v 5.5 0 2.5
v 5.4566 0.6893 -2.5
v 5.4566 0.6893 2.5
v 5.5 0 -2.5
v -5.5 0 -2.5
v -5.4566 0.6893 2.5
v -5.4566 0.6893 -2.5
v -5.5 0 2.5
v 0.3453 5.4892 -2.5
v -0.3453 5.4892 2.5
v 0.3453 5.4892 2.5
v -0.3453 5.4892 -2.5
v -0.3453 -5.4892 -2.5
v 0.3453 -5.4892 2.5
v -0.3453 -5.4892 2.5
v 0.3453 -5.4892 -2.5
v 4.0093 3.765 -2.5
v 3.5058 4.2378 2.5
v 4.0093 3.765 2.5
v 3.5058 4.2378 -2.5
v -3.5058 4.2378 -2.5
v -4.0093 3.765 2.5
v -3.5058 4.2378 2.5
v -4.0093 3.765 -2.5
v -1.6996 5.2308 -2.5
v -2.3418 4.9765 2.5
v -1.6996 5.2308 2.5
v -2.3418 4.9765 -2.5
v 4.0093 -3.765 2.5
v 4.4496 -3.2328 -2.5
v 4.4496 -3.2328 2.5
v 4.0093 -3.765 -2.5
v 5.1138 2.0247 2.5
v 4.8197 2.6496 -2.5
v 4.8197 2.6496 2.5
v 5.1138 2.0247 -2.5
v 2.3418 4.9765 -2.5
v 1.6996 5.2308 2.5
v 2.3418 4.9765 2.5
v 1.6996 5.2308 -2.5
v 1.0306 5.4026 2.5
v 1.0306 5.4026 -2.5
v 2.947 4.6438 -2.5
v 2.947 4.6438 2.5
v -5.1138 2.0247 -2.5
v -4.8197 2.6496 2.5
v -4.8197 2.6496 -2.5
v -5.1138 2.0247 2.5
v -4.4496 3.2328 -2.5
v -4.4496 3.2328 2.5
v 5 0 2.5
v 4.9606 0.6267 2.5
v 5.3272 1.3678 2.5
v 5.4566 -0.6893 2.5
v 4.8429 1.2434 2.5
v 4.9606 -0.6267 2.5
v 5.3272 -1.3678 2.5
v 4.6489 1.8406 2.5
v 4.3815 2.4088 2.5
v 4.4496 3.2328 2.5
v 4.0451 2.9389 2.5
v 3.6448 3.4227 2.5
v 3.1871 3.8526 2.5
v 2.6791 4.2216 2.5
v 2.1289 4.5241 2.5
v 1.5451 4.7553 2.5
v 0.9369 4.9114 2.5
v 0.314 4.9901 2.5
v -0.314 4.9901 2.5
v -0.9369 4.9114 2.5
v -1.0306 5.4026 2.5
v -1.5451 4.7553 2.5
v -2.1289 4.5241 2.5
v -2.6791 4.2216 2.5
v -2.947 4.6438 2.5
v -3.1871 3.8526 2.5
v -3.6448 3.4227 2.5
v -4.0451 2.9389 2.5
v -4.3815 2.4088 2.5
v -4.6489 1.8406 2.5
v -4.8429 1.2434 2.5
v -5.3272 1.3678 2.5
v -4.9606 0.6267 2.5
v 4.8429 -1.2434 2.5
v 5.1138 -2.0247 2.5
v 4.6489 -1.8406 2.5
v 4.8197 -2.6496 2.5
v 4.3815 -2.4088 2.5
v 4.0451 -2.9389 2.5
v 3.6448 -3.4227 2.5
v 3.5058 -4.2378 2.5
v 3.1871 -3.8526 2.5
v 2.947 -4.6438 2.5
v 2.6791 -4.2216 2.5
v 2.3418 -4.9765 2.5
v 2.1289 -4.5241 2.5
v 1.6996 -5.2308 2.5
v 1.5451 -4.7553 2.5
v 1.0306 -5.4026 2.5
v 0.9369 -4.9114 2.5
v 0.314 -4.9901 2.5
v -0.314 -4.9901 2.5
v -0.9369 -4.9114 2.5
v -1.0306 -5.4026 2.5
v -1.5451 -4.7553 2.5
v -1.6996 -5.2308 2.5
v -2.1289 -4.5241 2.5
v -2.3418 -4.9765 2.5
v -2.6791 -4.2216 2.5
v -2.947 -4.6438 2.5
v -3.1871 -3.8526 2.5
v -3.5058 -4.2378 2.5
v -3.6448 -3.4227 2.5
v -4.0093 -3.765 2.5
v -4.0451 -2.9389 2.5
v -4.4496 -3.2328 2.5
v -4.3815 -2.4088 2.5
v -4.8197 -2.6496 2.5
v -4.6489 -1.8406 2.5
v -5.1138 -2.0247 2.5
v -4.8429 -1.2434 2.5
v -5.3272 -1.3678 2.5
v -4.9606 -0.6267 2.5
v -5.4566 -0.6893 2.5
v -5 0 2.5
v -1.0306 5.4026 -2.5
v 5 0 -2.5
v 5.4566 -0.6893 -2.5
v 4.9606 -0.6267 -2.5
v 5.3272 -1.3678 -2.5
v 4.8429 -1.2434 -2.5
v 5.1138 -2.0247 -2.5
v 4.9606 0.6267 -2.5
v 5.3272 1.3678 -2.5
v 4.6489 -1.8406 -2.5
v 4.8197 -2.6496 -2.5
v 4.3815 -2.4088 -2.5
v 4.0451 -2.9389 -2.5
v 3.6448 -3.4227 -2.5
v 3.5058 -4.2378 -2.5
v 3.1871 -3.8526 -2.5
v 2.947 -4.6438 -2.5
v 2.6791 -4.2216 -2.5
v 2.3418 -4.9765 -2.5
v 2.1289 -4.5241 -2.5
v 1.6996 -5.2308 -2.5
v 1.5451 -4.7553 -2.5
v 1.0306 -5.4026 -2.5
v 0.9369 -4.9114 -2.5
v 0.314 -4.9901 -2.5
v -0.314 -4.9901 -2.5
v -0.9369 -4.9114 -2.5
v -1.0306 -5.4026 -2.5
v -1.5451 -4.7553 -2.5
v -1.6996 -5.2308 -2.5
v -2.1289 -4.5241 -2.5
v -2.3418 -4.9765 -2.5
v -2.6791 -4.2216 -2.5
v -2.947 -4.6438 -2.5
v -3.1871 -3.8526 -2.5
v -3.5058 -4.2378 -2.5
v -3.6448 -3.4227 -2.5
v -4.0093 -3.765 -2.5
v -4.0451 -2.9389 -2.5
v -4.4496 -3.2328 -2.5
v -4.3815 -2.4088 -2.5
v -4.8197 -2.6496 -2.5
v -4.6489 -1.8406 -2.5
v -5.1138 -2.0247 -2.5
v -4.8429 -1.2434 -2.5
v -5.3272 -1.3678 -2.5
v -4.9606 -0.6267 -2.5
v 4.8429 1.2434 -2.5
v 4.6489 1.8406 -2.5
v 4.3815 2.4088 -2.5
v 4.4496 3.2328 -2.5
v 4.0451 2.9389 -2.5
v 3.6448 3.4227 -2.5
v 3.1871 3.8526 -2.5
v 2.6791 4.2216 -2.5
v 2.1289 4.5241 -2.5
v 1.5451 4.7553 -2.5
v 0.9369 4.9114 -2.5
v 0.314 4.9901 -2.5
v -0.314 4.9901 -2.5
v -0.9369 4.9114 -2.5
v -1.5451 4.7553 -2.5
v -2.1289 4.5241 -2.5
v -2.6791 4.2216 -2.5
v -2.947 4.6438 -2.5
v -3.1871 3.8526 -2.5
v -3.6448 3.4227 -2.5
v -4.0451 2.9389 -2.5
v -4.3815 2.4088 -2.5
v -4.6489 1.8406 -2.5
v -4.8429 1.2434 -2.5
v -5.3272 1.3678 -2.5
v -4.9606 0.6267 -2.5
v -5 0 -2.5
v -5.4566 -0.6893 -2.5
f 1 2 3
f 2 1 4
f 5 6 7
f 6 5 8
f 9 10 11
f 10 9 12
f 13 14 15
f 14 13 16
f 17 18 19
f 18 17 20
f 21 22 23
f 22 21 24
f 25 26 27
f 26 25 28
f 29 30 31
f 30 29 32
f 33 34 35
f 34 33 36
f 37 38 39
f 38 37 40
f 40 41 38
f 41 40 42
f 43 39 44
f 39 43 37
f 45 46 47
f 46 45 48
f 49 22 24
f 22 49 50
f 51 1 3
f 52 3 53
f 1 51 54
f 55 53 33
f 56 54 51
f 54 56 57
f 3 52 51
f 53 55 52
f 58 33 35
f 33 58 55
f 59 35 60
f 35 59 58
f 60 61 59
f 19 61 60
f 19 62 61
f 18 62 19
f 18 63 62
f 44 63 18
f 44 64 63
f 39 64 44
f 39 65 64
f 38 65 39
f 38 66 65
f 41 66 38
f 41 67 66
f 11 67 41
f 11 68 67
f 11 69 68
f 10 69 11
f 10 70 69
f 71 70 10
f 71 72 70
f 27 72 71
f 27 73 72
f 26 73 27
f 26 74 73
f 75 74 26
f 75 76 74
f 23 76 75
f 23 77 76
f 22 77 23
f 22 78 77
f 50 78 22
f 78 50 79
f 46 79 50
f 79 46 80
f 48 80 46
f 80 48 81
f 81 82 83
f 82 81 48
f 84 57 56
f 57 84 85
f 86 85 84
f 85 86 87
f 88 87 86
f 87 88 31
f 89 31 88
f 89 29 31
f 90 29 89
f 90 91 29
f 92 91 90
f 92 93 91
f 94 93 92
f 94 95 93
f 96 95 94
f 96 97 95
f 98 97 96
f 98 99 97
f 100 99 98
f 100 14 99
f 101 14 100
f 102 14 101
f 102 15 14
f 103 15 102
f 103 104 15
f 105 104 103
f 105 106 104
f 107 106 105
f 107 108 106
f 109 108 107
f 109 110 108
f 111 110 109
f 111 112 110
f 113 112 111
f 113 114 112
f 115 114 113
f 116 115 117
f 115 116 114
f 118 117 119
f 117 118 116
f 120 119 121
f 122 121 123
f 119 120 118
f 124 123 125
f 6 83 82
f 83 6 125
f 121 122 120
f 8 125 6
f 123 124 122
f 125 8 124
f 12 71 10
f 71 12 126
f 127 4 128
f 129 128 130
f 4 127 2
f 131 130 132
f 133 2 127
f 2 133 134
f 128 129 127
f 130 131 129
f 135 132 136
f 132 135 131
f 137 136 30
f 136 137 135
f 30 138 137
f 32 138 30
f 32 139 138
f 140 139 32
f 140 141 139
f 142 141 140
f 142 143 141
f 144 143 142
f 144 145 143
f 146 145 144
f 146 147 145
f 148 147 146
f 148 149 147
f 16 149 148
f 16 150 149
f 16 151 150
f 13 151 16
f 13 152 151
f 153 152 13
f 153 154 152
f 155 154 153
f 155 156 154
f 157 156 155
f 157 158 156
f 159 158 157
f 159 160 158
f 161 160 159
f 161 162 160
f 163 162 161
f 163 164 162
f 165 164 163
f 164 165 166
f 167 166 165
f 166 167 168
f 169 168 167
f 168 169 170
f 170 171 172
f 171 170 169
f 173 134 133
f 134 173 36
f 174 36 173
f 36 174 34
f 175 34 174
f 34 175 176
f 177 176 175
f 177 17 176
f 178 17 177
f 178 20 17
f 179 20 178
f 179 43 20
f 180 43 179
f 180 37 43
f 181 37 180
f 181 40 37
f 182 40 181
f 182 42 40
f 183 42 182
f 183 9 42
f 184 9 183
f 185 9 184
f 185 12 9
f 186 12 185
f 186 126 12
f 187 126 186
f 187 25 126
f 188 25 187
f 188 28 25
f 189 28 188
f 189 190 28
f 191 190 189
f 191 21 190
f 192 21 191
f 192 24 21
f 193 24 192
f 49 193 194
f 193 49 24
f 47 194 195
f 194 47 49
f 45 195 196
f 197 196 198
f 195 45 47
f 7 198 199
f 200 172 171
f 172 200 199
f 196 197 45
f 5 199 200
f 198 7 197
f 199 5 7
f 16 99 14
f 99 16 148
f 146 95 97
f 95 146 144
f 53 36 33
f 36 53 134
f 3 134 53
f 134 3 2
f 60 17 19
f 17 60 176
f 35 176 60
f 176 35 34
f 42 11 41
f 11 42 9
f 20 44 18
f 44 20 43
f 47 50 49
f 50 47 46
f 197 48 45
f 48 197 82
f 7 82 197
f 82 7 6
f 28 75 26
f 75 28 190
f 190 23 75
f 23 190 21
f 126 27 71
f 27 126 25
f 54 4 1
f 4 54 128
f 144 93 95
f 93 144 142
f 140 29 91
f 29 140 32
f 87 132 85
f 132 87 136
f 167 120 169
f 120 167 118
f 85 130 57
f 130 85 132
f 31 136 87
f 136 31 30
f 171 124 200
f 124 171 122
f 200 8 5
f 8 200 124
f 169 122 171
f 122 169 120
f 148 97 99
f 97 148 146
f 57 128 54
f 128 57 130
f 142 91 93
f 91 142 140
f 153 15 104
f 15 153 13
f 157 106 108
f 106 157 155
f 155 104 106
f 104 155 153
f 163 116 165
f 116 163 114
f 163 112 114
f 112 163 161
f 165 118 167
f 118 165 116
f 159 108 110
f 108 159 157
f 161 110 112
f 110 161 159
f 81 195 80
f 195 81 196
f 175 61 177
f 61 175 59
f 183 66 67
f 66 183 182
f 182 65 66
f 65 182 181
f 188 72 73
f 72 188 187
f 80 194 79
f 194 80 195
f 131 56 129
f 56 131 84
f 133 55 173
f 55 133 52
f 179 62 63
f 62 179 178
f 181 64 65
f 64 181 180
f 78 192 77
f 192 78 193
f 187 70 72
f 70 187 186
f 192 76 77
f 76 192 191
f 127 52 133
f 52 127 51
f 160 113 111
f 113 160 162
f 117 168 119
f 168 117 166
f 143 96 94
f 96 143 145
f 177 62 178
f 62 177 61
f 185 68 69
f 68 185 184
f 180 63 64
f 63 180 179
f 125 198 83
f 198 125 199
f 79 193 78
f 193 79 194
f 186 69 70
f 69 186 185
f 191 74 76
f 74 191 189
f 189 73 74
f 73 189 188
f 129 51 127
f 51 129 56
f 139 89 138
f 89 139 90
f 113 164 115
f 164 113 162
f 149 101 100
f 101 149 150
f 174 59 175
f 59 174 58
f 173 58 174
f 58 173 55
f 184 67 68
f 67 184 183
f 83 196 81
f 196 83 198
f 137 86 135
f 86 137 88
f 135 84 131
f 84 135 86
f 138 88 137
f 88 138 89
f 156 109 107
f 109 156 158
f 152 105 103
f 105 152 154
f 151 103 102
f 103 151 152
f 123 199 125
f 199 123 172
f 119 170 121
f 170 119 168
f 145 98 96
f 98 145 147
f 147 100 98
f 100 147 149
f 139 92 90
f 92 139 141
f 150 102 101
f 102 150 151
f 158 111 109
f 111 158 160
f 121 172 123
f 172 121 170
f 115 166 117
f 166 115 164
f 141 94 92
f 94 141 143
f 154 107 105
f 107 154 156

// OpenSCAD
$fn = 50;


difference() {
	union() {
		translate(v = [0, 0, -2.5000000000]) {
			cylinder(h = 5, r = 5.5000000000);
		}
	}
	union() {
		translate(v = [0, 0, -100.0000000000]) {
			cylinder(h = 200, r = 5);
		}
	}
}
